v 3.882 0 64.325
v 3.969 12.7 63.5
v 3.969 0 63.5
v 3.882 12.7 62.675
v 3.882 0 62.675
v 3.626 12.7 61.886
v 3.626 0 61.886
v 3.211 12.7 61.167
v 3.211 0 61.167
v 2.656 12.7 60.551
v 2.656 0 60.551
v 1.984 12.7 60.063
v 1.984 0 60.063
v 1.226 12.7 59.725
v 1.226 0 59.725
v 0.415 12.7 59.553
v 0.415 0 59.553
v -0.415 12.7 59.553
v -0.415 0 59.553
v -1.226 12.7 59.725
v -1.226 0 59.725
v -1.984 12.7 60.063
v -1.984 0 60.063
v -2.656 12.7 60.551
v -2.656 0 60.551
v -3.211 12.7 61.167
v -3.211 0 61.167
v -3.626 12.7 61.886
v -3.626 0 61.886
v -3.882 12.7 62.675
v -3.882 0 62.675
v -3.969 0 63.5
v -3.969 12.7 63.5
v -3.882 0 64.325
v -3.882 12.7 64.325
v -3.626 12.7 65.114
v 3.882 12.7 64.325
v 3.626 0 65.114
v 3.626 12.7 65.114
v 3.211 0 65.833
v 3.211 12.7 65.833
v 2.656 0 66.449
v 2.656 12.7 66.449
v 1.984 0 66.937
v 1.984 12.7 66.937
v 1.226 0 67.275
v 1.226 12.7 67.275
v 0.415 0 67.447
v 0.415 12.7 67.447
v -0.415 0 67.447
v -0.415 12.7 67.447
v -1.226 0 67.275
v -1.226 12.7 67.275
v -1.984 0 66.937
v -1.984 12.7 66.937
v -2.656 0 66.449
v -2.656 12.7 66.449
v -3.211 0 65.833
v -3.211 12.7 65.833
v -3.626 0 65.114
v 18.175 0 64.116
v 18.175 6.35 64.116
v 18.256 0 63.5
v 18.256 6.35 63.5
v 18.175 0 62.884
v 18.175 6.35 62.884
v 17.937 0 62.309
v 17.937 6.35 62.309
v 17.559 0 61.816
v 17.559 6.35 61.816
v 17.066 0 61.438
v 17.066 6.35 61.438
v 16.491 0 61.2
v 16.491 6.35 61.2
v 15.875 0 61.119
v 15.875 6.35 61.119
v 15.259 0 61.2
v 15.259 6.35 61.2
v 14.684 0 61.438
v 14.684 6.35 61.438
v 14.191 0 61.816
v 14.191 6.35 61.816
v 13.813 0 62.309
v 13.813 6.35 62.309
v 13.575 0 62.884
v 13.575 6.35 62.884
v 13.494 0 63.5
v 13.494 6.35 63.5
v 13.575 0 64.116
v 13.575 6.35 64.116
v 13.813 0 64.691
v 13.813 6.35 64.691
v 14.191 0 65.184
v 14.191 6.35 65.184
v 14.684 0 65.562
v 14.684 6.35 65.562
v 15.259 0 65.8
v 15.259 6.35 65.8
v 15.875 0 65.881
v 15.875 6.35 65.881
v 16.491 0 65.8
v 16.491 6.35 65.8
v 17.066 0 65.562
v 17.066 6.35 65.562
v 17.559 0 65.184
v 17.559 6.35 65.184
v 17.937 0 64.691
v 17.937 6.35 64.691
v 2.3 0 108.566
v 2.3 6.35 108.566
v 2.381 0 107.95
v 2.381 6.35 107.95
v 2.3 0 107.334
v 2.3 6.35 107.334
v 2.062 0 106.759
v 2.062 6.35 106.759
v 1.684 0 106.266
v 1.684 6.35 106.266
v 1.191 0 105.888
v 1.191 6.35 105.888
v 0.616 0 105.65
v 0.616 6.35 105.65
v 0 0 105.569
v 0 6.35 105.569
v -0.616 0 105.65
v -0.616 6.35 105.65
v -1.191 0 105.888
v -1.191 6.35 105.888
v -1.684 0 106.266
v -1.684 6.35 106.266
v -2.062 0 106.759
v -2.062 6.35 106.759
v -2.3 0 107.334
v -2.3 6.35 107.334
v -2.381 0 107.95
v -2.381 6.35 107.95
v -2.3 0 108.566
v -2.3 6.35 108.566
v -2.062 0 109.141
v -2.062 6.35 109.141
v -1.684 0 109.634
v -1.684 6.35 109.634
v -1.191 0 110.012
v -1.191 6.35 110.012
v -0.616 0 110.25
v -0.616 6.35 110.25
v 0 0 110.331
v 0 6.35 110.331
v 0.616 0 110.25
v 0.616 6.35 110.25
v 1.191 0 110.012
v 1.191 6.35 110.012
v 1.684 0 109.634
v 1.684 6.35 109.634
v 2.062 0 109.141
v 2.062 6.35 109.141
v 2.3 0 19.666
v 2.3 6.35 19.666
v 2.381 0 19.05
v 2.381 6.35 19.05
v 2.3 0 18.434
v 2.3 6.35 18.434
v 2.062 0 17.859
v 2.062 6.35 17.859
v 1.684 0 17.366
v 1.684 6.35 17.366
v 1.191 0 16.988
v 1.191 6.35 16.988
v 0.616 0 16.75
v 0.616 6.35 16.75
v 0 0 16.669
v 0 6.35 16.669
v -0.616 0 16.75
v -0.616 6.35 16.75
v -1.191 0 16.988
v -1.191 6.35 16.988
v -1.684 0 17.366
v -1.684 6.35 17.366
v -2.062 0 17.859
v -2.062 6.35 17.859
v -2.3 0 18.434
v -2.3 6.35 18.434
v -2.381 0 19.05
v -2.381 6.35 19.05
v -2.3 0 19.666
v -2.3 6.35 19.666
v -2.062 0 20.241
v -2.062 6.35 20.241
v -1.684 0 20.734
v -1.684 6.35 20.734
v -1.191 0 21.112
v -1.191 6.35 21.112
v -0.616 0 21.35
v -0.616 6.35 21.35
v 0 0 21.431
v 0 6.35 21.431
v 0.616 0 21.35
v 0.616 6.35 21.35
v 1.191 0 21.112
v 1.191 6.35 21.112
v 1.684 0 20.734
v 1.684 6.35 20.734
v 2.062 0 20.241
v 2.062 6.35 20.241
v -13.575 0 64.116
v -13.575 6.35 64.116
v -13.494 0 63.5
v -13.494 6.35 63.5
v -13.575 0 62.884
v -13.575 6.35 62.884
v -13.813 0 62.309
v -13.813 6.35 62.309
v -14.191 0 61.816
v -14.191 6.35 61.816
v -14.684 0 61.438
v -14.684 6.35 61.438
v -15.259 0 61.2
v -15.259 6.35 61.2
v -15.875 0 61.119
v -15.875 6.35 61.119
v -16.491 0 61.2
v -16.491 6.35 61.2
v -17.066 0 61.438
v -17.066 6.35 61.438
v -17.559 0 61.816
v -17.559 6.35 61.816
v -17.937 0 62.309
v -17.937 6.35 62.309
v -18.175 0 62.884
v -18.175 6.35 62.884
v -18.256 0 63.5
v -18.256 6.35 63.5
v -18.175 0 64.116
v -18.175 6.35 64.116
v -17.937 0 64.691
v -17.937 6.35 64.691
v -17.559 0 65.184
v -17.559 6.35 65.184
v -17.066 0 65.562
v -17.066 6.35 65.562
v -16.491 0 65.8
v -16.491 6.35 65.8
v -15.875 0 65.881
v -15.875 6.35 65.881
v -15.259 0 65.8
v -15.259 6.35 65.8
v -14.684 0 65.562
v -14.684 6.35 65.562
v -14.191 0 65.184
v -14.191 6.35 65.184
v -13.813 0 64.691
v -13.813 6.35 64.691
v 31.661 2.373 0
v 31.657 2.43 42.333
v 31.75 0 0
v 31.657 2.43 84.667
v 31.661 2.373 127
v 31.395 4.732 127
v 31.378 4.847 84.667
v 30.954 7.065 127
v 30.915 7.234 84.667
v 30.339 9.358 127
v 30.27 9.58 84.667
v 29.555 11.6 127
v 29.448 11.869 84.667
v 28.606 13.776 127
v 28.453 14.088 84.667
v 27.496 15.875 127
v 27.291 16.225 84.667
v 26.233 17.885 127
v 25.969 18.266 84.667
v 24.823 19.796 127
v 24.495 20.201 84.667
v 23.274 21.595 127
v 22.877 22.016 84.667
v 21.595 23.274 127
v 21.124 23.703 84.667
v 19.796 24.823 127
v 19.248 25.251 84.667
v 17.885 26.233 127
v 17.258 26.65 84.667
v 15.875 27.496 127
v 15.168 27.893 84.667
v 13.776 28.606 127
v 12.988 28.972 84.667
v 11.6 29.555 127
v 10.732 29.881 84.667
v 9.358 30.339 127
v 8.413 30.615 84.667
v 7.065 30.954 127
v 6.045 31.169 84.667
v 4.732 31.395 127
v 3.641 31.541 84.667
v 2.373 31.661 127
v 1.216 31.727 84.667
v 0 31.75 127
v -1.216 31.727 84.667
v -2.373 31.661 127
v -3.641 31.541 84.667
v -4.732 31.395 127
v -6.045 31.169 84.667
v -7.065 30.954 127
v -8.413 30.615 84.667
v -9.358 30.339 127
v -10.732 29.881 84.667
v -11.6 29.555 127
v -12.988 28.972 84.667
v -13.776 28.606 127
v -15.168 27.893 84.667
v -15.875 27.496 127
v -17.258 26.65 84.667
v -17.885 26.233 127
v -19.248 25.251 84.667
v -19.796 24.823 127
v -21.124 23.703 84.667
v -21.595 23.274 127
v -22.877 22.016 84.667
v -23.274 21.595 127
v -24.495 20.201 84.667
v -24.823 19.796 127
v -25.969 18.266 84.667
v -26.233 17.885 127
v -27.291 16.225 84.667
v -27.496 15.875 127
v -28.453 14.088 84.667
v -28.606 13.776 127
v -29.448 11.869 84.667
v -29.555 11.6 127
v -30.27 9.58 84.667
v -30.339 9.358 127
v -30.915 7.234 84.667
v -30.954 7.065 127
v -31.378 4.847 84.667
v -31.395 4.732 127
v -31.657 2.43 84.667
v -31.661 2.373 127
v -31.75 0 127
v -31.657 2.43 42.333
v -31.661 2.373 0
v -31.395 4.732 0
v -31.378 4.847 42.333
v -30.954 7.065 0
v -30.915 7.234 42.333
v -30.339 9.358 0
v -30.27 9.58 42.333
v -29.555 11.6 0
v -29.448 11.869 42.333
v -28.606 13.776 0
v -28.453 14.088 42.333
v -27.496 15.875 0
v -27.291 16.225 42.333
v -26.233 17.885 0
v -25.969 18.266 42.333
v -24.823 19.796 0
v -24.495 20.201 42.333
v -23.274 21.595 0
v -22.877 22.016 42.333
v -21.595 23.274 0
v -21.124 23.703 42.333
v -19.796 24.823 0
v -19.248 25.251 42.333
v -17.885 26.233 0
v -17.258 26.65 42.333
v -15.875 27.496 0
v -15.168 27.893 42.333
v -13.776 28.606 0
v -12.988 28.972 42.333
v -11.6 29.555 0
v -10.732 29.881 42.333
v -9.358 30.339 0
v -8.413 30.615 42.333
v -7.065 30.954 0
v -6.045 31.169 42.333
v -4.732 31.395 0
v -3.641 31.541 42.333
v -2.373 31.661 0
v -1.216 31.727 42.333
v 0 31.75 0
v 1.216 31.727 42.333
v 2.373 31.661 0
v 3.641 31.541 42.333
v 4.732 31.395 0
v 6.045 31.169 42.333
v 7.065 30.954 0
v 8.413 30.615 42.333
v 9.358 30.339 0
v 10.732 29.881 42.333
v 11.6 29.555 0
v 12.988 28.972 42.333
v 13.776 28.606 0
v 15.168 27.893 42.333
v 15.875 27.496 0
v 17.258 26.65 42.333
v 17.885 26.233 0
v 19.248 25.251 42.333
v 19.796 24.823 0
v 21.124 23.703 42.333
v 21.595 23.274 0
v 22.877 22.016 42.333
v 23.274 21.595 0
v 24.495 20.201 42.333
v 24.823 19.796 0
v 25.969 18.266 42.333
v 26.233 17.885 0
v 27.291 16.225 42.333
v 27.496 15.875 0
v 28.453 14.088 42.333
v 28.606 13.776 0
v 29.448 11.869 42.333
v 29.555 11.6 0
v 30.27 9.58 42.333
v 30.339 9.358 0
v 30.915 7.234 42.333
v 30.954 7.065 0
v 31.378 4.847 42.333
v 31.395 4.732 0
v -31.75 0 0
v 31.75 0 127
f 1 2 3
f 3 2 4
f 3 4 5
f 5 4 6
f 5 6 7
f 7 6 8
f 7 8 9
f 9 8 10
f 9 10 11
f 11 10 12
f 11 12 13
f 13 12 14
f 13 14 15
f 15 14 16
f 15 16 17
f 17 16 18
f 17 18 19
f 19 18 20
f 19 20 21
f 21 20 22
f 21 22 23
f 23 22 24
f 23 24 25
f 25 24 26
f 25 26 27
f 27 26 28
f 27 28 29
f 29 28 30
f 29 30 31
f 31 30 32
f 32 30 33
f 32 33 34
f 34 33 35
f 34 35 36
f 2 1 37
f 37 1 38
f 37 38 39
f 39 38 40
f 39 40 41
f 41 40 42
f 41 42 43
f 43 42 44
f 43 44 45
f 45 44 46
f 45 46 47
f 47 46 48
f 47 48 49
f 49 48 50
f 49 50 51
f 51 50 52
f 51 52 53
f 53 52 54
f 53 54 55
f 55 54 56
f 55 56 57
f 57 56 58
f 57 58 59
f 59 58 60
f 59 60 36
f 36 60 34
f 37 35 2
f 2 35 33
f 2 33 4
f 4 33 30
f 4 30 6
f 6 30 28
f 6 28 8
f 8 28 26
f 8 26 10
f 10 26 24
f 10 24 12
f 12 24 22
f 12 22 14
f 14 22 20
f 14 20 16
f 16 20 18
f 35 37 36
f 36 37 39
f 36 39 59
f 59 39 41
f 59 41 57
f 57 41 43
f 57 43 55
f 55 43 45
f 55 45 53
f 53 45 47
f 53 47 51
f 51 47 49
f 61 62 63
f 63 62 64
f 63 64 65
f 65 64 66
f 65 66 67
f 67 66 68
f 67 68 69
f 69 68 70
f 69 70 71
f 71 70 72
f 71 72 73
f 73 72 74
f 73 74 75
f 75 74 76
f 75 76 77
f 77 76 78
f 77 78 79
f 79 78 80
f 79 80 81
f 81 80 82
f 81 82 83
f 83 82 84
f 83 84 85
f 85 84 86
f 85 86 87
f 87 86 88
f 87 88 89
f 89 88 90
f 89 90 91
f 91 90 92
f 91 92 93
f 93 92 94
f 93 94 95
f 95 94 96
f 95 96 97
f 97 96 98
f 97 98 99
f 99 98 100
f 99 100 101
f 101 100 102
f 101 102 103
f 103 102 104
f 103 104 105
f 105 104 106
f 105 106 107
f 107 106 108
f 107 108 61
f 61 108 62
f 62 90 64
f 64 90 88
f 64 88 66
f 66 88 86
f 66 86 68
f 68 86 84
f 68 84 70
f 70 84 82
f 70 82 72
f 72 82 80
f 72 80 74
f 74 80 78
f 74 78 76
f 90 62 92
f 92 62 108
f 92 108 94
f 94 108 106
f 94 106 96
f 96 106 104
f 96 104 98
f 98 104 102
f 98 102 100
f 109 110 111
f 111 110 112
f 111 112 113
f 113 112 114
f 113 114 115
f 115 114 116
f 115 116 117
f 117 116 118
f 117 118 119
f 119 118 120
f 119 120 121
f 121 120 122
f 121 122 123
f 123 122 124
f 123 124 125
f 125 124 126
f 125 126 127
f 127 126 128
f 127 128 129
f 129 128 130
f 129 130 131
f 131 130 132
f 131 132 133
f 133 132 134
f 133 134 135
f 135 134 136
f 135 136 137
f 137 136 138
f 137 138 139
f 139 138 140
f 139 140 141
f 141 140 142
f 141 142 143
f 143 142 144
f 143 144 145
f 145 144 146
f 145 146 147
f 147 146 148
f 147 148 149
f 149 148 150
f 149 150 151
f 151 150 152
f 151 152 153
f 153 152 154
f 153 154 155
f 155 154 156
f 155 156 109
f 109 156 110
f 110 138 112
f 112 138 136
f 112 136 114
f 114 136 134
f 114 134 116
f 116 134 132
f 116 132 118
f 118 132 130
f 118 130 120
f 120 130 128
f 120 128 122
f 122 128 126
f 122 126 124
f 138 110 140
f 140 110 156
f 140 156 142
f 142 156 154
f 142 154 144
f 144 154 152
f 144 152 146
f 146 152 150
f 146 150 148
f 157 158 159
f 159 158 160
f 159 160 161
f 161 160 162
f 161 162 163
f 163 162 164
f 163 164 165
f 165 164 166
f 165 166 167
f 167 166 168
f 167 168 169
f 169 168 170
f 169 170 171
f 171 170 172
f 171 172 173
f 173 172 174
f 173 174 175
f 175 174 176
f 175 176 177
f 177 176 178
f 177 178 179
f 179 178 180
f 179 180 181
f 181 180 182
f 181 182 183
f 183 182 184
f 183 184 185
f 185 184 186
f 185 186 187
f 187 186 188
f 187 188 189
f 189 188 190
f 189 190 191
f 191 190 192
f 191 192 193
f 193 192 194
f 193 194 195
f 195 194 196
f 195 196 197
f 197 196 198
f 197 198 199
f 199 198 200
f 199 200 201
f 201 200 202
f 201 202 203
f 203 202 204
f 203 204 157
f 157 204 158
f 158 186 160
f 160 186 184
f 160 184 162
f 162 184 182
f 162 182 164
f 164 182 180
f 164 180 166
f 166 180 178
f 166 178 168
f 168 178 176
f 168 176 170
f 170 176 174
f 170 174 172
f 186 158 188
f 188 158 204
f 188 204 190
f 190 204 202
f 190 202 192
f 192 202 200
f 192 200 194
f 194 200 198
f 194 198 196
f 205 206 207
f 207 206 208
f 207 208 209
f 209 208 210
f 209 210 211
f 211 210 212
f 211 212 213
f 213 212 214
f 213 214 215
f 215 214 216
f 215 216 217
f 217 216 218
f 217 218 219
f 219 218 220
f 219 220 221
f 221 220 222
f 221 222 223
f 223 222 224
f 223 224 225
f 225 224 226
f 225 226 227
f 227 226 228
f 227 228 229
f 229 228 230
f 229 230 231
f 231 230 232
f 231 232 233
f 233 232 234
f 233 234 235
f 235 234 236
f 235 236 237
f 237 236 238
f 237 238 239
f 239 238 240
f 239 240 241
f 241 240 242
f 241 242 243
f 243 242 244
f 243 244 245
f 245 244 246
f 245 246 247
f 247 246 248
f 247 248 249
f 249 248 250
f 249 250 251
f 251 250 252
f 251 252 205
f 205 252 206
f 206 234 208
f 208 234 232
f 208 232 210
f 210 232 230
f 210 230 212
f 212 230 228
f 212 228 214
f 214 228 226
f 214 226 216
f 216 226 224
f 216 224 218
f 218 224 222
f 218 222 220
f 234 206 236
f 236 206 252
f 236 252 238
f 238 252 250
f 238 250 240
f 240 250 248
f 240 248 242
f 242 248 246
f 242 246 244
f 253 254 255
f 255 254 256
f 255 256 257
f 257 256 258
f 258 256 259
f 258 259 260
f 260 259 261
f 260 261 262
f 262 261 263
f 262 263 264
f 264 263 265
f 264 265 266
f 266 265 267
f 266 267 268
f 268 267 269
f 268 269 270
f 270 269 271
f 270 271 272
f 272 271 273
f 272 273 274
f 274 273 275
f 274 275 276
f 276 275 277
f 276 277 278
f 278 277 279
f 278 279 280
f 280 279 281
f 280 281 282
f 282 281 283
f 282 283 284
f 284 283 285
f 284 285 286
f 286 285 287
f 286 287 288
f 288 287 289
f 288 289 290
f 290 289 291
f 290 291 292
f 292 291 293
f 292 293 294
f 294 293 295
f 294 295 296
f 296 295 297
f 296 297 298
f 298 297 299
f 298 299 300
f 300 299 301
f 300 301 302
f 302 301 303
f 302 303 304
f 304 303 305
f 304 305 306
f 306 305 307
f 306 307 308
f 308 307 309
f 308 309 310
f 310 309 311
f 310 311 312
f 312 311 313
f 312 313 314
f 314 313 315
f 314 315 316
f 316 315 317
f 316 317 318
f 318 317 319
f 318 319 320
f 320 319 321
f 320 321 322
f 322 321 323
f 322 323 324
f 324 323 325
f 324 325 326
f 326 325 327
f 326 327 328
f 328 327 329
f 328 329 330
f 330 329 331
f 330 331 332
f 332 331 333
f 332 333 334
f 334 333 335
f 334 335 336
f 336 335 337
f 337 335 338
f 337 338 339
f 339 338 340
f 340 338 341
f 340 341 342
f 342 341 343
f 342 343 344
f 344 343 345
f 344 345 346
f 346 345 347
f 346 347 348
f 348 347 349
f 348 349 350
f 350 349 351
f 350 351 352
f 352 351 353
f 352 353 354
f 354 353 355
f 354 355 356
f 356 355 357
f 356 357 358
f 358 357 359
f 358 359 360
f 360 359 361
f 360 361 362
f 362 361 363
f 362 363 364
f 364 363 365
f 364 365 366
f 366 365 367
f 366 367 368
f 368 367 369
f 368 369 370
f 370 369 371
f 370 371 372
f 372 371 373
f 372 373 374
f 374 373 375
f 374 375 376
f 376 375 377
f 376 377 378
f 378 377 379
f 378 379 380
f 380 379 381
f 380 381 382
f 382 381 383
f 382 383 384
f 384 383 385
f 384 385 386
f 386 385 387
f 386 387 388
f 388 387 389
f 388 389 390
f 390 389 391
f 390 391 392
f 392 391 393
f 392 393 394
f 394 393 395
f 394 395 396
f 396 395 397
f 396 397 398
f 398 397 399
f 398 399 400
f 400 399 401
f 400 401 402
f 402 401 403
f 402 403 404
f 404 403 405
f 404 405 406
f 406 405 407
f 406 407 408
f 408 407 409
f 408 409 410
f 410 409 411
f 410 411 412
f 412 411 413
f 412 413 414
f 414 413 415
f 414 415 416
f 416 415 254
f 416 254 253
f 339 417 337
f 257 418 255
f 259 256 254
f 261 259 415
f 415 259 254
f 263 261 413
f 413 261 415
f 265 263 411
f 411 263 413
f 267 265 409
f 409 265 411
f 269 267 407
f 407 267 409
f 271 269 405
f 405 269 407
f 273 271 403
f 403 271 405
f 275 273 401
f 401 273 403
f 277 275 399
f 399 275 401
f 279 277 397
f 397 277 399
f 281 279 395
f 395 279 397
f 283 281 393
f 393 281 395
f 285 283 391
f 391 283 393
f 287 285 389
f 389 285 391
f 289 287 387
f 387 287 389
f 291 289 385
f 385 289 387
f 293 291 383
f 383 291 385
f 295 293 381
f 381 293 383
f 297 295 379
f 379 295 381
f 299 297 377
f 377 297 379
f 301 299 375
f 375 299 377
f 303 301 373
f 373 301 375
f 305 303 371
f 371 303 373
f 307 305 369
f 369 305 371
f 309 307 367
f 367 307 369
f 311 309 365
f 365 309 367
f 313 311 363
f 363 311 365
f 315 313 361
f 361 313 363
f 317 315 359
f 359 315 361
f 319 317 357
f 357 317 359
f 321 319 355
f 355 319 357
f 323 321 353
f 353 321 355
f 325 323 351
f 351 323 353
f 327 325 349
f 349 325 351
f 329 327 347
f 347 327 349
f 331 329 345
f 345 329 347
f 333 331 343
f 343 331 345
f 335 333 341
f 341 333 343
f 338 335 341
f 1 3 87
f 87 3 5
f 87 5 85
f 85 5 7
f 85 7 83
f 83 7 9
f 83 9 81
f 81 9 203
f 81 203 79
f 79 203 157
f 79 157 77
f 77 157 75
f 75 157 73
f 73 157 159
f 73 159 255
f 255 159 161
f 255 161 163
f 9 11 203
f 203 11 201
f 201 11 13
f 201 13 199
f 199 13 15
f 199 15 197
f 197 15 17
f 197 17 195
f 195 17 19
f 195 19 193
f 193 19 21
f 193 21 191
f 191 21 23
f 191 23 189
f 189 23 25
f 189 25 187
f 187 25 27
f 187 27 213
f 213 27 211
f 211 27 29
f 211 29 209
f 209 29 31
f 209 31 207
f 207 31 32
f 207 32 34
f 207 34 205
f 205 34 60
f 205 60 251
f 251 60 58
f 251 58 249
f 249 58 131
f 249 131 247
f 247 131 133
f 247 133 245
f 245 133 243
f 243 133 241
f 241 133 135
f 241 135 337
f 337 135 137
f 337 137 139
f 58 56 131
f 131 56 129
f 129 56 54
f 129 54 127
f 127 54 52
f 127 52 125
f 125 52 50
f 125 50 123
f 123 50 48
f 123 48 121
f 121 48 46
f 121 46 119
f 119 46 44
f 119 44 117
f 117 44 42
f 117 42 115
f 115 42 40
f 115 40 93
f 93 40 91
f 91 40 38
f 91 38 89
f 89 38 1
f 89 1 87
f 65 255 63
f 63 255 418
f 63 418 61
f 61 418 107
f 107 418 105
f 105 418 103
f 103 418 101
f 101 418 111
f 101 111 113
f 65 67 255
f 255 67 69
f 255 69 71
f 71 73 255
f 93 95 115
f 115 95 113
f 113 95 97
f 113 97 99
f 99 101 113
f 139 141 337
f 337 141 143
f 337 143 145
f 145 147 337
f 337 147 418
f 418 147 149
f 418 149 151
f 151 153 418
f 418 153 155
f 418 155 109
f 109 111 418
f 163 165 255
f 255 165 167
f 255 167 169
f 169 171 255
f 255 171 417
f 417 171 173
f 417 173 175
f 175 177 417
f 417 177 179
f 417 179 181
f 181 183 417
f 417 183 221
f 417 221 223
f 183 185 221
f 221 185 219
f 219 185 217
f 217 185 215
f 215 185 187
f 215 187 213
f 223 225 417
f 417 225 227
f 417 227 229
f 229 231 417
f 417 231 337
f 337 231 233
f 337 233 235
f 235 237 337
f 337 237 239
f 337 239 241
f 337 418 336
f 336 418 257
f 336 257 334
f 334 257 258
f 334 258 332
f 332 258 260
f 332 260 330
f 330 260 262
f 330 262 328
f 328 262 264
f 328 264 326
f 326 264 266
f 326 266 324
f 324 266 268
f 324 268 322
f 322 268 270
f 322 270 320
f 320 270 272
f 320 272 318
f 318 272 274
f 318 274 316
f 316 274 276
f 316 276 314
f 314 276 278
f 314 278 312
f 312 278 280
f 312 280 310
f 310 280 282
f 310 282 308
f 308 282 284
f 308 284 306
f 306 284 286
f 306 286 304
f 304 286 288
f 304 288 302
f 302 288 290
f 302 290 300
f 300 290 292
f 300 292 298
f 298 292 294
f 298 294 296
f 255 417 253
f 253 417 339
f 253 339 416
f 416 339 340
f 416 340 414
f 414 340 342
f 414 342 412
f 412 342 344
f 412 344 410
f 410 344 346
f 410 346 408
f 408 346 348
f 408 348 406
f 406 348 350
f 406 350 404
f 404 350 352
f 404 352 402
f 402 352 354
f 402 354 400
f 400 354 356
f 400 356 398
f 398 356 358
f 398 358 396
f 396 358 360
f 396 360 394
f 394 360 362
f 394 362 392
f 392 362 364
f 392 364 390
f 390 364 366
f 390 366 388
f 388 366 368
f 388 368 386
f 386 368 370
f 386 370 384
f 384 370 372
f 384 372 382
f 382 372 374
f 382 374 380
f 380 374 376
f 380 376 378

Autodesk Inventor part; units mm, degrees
ref_plane "YZ Plane" through (0, 0, 0) normal (1, 0, 0) x (0, 1, 0)
ref_plane "XZ Plane" through (0, 0, 0) normal (0, 1, 0) x (-1, 0, 0)
ref_plane "XY Plane" through (0, 0, 0) normal (0, 0, 1) x (1, 0, 0)
sketch "Sketch1" plane through (0, 0, 0) normal (0, 0, 1) x (1, 0, 0)
  arc A0 (31.75, 0) -> (-31.75, 0) centre (0, 0) ccw
  line L0 (-31.75, 0) -> (31.75, 0)
  dimension "diameter" = 63.5
extrude "Extrusion1" add sketch "Sketch1" along normal blind 127
sketch "Sketch2" plane through (-31.75, 0, 0) normal (0, -1, 0) x (1, 0, 0)
  line L0 (31.75, 0) -> (31.75, 127) construction
  line L1 (0, 127) -> (63.5, 127) construction
  line L2 (0, 0) -> (0, 127) construction
  line L3 (0, 63.5) -> (63.5, 63.5) construction
  line L4 (63.5, 0) -> (63.5, 127) construction
  point P0 (31.75, 63.5)
  point P1 (31.75, 107.95)
  point P2 (31.75, 19.05)
  point P3 (47.625, 63.5)
  point P4 (15.875, 63.5)
  dimension "d3" = 44.45
  dimension "d4" = 44.45
  dimension "d12" = 15.875
hole "Hole1" at (0, 0, 107.95) at (0, 0, 19.05) at (15.875, 0, 63.5) at (-15.875, 0, 63.5) direction (0, 1, 0) diameter 4.7625 depth 6.35
hole "Hole2" at (0, 0, 63.5) direction (0, 1, 0) diameter 7.9375 depth 12.7
equation "\"width\" = 2 * diameter"
equation "\"d4\" = d3"
properties part number "Greenhouse_3DPrint"
